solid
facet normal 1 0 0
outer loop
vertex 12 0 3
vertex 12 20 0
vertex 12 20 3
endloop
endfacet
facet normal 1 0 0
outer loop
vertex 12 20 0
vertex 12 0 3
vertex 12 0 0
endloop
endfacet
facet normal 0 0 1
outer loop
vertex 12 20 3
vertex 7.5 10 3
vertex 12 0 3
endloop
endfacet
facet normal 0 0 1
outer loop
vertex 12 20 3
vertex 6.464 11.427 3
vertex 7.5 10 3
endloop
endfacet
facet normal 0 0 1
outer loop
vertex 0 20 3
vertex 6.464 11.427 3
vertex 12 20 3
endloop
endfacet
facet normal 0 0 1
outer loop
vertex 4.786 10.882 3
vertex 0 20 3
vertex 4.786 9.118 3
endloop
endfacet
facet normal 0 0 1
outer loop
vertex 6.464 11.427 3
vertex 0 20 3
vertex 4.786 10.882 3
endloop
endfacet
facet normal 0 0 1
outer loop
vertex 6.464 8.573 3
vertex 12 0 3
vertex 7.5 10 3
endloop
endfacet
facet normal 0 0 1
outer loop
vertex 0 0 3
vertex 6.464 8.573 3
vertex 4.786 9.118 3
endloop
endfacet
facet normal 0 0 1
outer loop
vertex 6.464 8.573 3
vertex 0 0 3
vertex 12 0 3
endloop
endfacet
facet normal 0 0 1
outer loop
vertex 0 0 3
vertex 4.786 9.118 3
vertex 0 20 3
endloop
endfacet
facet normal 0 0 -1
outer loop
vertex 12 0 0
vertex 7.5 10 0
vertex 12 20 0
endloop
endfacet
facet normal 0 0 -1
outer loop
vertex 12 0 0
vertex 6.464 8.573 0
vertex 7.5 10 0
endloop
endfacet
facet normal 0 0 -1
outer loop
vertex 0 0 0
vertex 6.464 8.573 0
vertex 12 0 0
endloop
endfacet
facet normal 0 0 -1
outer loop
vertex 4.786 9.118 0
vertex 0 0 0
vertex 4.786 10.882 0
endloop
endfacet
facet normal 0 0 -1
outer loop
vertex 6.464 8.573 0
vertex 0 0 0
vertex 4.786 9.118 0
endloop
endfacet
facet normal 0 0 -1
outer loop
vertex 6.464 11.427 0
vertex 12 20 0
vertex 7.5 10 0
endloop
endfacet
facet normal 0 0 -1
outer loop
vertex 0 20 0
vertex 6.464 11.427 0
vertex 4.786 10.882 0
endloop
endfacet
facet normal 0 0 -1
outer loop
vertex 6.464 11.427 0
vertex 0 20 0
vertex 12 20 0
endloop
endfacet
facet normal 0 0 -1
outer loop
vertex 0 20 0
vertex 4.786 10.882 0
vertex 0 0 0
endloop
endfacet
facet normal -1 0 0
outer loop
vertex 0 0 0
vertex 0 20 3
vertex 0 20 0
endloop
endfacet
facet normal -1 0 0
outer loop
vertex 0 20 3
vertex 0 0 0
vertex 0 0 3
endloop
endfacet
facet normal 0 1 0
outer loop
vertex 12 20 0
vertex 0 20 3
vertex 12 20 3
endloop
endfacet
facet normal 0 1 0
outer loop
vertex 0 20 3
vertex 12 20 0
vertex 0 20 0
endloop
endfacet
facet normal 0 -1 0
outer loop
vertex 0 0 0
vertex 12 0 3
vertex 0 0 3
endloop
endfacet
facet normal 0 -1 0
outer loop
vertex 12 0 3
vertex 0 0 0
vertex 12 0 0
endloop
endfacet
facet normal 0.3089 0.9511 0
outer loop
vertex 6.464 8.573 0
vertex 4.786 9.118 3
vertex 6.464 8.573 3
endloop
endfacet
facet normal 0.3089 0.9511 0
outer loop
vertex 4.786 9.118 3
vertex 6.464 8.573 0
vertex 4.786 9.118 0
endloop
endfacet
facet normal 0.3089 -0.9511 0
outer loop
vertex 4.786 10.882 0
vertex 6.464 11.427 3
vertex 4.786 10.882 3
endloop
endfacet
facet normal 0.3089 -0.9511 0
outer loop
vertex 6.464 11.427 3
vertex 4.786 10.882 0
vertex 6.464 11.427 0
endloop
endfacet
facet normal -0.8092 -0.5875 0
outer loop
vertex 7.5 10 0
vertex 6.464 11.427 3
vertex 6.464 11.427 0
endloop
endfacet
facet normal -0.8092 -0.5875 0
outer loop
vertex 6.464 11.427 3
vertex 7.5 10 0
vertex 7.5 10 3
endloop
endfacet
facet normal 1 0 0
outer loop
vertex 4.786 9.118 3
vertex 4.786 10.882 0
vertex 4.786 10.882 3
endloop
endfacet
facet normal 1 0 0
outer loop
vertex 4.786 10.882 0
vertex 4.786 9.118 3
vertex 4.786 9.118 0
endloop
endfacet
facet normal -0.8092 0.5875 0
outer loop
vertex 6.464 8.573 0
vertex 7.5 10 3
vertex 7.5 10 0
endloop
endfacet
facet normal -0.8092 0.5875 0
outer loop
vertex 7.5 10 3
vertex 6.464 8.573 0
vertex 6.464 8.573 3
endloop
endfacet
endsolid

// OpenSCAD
module switch_mount(
  platform_ht,
  platform_wid=12,
  platform_dep=20,
  ht1=8,
  diam1=1/4*25.4,
) {
    difference() {
        cube([platform_wid, platform_dep, platform_ht]);
        translate([platform_wid/2,platform_dep/2,0]) cylinder(ht1,d=platform_ht);
    }
}

switch_mount(3);
